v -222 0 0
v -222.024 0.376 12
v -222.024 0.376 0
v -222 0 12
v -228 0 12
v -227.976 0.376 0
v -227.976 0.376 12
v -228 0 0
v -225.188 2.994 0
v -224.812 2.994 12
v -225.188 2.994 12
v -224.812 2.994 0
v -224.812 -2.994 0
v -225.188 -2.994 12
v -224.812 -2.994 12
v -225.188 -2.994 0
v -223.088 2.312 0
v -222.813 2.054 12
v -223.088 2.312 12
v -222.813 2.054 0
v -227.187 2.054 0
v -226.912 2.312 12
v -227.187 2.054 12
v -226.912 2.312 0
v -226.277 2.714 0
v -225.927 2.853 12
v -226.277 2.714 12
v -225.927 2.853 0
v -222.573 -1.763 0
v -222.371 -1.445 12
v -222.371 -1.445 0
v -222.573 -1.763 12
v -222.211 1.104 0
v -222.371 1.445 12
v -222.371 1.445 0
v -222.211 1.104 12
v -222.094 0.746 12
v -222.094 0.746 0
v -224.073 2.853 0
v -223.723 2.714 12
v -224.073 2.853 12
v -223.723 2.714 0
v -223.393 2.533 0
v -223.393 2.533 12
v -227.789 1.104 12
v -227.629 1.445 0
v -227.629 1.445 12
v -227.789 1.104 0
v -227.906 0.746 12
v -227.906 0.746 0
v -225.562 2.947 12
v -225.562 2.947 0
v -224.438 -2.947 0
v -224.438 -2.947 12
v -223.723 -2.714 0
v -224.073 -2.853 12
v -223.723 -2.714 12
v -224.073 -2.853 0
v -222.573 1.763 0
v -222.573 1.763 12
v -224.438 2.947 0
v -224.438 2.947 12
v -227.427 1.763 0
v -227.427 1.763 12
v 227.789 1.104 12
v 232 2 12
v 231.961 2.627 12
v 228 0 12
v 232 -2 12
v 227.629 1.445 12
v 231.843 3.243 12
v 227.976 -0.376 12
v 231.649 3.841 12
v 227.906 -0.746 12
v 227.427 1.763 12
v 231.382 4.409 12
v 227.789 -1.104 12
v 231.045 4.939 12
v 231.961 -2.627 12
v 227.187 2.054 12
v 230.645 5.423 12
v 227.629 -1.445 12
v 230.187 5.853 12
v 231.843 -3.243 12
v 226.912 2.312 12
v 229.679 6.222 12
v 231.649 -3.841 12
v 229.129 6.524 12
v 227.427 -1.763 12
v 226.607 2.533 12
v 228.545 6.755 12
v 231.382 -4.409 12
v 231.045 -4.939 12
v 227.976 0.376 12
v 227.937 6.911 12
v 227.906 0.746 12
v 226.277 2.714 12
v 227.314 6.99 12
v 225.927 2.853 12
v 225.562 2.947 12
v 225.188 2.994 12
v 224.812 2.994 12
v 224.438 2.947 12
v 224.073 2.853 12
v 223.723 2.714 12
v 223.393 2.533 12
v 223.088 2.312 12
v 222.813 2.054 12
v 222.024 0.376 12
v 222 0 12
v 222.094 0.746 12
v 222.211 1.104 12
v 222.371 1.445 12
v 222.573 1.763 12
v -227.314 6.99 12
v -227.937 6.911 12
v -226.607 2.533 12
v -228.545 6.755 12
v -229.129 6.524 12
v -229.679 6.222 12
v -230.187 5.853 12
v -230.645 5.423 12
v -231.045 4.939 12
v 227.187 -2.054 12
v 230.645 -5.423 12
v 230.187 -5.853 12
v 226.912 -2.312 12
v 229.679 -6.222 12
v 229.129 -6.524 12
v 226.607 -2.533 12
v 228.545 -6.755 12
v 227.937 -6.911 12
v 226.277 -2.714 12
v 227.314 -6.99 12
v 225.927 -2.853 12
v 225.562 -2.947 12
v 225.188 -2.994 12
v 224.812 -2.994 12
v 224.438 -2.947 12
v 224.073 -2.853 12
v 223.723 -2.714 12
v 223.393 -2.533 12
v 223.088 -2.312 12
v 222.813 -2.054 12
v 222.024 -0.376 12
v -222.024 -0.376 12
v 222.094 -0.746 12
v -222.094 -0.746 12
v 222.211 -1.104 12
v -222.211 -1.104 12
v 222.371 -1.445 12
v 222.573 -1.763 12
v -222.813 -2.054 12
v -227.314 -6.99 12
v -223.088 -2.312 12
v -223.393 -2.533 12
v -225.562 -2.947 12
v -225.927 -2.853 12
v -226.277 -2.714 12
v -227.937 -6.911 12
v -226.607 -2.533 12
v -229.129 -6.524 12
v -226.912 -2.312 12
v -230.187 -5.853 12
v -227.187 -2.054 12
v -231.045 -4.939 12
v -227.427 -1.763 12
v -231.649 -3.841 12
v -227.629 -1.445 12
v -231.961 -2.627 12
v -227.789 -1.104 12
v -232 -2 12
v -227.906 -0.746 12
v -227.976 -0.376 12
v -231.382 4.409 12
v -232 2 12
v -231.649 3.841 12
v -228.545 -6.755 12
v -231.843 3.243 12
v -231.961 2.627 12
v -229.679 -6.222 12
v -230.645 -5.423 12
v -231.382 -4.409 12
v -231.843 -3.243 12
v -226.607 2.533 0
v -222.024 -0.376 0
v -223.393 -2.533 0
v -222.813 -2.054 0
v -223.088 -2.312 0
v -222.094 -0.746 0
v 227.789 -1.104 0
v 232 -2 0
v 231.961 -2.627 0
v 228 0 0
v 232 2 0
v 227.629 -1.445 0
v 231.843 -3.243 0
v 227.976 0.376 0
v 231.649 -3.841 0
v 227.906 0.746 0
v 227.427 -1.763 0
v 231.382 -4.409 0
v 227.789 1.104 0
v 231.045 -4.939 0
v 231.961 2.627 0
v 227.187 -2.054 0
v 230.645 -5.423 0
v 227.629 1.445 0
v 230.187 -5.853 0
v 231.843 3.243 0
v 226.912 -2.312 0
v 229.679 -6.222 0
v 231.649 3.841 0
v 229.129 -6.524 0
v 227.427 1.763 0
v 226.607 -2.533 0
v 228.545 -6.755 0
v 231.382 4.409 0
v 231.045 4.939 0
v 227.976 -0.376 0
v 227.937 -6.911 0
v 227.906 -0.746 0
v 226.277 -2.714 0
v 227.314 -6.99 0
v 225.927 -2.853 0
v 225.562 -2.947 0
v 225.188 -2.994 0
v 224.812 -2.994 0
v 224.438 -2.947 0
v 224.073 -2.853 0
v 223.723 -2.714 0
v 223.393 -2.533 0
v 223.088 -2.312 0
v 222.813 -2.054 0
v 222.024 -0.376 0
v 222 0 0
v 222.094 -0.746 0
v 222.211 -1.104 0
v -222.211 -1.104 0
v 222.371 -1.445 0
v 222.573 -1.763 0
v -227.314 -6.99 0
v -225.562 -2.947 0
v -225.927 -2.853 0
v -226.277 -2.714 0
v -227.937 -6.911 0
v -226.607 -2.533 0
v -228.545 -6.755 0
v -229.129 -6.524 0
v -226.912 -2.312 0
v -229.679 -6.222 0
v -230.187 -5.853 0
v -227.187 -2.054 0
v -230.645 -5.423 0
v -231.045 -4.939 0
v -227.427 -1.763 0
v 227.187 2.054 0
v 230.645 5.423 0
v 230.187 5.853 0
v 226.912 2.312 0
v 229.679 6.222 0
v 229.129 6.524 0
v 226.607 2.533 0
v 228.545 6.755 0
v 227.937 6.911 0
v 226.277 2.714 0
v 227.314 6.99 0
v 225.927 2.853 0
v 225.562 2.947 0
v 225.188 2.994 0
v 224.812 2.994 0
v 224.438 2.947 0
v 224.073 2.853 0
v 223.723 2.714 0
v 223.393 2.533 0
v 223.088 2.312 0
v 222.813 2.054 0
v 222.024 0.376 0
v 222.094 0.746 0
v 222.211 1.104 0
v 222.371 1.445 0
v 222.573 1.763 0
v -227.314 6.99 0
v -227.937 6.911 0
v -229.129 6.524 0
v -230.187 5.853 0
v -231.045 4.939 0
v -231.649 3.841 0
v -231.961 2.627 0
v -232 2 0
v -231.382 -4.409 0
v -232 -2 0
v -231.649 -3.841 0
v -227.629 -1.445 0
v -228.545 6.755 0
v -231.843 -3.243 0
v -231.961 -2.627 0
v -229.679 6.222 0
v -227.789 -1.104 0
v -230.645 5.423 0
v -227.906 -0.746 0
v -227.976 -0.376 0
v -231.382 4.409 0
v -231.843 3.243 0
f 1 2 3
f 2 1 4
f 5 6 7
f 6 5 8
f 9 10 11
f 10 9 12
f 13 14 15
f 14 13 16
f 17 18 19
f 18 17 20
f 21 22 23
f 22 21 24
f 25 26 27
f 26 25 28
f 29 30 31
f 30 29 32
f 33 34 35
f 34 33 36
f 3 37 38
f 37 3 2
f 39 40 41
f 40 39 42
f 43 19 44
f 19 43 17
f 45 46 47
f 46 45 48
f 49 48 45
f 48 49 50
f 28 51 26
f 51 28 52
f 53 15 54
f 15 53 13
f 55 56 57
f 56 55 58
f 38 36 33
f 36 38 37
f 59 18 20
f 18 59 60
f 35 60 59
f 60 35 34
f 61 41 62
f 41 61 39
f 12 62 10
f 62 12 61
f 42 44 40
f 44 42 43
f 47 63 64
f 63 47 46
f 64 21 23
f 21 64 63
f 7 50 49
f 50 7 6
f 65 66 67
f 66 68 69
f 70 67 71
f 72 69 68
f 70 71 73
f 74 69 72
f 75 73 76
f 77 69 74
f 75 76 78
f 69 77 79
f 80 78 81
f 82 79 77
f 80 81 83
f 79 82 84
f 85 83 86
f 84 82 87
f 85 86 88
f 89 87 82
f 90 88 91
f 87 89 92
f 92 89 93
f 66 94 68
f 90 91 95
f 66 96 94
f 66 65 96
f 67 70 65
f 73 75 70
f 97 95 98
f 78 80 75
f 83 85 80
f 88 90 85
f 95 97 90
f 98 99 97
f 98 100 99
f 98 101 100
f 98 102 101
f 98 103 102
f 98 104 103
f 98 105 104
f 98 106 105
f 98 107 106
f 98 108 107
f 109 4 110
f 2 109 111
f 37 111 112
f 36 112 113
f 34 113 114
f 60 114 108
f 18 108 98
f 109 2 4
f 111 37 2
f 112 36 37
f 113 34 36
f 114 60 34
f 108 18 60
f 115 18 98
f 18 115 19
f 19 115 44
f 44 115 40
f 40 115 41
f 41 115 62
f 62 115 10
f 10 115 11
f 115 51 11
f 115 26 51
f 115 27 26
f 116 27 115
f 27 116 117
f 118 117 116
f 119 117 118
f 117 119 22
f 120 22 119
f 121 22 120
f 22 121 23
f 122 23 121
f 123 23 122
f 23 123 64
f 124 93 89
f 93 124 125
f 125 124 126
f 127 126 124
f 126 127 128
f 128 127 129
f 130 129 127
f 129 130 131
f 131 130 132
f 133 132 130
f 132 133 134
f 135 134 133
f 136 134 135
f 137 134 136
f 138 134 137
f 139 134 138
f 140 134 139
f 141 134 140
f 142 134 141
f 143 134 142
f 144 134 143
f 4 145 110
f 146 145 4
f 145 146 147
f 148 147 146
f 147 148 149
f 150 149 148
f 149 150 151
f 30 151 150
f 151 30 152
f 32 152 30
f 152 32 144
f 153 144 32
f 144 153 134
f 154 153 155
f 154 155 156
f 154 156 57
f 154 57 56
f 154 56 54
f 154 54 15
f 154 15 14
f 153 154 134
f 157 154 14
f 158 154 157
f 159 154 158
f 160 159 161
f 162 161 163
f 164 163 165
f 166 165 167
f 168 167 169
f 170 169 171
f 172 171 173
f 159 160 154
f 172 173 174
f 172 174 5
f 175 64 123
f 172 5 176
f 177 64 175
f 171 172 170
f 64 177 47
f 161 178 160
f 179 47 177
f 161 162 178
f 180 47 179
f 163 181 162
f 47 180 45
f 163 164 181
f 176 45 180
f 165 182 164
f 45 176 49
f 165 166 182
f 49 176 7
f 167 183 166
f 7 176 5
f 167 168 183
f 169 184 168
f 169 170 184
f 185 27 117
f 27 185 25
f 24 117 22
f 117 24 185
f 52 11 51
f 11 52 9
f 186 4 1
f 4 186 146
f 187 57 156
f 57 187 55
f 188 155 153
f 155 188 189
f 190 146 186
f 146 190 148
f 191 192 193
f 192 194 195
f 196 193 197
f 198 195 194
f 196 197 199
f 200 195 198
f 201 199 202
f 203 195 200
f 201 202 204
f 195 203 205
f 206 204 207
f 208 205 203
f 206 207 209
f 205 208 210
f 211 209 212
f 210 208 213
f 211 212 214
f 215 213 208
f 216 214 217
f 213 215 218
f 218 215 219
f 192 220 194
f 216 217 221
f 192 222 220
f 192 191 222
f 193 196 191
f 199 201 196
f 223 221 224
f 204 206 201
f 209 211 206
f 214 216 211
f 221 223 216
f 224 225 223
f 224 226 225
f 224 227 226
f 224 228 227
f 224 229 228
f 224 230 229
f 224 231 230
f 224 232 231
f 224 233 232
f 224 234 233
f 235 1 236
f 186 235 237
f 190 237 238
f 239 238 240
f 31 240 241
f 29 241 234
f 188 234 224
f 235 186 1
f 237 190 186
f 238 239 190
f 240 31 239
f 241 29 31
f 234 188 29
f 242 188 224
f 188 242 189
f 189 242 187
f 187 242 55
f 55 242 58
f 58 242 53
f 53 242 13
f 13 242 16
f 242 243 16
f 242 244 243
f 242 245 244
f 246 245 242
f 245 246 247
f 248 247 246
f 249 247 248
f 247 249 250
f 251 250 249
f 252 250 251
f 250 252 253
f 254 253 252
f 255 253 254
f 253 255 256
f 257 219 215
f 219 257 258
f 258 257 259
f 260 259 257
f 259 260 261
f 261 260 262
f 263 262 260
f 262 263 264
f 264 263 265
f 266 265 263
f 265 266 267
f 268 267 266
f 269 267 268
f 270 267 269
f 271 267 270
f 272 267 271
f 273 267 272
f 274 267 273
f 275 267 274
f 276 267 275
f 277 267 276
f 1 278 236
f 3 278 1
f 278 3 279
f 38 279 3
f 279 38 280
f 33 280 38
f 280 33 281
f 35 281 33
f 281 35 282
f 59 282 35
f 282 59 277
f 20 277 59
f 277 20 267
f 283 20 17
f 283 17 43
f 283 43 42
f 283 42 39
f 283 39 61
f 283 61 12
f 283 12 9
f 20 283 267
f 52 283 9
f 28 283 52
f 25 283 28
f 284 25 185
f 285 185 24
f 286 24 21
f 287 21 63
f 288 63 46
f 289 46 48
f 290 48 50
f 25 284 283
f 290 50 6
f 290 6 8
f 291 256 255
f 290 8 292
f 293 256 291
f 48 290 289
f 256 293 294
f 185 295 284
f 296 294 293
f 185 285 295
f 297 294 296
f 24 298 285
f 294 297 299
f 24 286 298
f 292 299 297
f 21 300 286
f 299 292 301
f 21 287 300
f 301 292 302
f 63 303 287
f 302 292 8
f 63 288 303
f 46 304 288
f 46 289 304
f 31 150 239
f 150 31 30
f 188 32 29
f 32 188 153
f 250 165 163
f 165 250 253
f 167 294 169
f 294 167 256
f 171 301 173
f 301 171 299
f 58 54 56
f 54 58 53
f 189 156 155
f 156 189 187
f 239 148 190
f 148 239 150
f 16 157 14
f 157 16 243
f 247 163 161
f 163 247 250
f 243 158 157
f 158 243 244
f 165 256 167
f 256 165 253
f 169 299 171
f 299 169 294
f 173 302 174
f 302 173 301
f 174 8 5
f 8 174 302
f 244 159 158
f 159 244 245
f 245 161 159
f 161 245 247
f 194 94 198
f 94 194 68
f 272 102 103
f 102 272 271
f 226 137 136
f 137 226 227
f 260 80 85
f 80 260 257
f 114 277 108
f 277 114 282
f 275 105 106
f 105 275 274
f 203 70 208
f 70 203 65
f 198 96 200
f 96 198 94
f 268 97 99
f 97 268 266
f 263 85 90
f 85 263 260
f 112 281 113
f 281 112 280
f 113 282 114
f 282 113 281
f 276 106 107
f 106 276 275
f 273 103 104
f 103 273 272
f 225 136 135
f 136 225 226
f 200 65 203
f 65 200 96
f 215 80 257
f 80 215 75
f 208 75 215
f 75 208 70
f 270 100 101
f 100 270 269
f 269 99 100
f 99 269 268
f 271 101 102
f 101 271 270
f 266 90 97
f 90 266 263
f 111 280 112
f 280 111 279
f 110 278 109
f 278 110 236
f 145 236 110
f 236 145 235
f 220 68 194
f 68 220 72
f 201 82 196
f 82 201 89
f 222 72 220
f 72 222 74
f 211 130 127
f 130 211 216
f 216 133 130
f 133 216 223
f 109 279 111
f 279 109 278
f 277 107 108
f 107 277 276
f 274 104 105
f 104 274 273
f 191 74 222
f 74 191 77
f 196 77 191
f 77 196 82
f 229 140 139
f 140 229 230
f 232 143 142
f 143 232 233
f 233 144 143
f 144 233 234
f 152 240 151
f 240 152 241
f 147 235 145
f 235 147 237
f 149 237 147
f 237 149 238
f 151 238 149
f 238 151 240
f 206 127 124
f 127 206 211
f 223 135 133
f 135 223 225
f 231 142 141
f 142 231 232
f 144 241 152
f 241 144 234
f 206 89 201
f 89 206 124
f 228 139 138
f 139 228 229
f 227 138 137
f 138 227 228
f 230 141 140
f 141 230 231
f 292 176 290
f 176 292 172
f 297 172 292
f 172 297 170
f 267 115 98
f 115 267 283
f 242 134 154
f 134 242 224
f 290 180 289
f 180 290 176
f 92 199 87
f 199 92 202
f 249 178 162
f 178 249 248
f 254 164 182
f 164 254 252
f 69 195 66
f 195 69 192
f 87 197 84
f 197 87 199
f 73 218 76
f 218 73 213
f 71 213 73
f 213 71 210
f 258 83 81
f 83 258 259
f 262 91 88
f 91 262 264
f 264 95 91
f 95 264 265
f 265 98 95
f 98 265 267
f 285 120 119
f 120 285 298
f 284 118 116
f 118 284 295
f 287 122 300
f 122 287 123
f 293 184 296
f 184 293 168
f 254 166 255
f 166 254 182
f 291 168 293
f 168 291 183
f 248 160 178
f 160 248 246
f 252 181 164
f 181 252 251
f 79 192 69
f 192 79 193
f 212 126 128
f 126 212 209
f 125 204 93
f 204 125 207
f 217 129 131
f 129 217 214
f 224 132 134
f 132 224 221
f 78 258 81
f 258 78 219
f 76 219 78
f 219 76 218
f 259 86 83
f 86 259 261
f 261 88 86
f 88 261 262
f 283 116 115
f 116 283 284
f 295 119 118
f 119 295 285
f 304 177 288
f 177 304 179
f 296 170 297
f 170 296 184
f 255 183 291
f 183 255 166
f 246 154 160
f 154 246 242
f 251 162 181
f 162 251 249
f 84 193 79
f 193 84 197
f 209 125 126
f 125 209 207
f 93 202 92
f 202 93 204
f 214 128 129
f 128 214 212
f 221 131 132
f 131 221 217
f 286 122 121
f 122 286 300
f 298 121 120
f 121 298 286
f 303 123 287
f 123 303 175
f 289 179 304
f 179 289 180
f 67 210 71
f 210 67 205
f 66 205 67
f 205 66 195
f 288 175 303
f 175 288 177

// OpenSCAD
$fn = 50;


difference() {
	union() {
		hull() {
			translate(v = [-227.0000000000, 2.0000000000, 0]) {
				cylinder(h = 12, r = 5);
			}
			translate(v = [227.0000000000, 2.0000000000, 0]) {
				cylinder(h = 12, r = 5);
			}
			translate(v = [-227.0000000000, -2.0000000000, 0]) {
				cylinder(h = 12, r = 5);
			}
			translate(v = [227.0000000000, -2.0000000000, 0]) {
				cylinder(h = 12, r = 5);
			}
		}
	}
	union() {
		translate(v = [-225.0000000000, 0.0000000000, -100.0000000000]) {
			cylinder(h = 200, r = 3.0000000000);
		}
		translate(v = [-225.0000000000, 0.0000000000, -100.0000000000]) {
			cylinder(h = 200, r = 3.0000000000);
		}
		translate(v = [225.0000000000, 0.0000000000, -100.0000000000]) {
			cylinder(h = 200, r = 3.0000000000);
		}
		translate(v = [225.0000000000, 0.0000000000, -100.0000000000]) {
			cylinder(h = 200, r = 3.0000000000);
		}
	}
}
